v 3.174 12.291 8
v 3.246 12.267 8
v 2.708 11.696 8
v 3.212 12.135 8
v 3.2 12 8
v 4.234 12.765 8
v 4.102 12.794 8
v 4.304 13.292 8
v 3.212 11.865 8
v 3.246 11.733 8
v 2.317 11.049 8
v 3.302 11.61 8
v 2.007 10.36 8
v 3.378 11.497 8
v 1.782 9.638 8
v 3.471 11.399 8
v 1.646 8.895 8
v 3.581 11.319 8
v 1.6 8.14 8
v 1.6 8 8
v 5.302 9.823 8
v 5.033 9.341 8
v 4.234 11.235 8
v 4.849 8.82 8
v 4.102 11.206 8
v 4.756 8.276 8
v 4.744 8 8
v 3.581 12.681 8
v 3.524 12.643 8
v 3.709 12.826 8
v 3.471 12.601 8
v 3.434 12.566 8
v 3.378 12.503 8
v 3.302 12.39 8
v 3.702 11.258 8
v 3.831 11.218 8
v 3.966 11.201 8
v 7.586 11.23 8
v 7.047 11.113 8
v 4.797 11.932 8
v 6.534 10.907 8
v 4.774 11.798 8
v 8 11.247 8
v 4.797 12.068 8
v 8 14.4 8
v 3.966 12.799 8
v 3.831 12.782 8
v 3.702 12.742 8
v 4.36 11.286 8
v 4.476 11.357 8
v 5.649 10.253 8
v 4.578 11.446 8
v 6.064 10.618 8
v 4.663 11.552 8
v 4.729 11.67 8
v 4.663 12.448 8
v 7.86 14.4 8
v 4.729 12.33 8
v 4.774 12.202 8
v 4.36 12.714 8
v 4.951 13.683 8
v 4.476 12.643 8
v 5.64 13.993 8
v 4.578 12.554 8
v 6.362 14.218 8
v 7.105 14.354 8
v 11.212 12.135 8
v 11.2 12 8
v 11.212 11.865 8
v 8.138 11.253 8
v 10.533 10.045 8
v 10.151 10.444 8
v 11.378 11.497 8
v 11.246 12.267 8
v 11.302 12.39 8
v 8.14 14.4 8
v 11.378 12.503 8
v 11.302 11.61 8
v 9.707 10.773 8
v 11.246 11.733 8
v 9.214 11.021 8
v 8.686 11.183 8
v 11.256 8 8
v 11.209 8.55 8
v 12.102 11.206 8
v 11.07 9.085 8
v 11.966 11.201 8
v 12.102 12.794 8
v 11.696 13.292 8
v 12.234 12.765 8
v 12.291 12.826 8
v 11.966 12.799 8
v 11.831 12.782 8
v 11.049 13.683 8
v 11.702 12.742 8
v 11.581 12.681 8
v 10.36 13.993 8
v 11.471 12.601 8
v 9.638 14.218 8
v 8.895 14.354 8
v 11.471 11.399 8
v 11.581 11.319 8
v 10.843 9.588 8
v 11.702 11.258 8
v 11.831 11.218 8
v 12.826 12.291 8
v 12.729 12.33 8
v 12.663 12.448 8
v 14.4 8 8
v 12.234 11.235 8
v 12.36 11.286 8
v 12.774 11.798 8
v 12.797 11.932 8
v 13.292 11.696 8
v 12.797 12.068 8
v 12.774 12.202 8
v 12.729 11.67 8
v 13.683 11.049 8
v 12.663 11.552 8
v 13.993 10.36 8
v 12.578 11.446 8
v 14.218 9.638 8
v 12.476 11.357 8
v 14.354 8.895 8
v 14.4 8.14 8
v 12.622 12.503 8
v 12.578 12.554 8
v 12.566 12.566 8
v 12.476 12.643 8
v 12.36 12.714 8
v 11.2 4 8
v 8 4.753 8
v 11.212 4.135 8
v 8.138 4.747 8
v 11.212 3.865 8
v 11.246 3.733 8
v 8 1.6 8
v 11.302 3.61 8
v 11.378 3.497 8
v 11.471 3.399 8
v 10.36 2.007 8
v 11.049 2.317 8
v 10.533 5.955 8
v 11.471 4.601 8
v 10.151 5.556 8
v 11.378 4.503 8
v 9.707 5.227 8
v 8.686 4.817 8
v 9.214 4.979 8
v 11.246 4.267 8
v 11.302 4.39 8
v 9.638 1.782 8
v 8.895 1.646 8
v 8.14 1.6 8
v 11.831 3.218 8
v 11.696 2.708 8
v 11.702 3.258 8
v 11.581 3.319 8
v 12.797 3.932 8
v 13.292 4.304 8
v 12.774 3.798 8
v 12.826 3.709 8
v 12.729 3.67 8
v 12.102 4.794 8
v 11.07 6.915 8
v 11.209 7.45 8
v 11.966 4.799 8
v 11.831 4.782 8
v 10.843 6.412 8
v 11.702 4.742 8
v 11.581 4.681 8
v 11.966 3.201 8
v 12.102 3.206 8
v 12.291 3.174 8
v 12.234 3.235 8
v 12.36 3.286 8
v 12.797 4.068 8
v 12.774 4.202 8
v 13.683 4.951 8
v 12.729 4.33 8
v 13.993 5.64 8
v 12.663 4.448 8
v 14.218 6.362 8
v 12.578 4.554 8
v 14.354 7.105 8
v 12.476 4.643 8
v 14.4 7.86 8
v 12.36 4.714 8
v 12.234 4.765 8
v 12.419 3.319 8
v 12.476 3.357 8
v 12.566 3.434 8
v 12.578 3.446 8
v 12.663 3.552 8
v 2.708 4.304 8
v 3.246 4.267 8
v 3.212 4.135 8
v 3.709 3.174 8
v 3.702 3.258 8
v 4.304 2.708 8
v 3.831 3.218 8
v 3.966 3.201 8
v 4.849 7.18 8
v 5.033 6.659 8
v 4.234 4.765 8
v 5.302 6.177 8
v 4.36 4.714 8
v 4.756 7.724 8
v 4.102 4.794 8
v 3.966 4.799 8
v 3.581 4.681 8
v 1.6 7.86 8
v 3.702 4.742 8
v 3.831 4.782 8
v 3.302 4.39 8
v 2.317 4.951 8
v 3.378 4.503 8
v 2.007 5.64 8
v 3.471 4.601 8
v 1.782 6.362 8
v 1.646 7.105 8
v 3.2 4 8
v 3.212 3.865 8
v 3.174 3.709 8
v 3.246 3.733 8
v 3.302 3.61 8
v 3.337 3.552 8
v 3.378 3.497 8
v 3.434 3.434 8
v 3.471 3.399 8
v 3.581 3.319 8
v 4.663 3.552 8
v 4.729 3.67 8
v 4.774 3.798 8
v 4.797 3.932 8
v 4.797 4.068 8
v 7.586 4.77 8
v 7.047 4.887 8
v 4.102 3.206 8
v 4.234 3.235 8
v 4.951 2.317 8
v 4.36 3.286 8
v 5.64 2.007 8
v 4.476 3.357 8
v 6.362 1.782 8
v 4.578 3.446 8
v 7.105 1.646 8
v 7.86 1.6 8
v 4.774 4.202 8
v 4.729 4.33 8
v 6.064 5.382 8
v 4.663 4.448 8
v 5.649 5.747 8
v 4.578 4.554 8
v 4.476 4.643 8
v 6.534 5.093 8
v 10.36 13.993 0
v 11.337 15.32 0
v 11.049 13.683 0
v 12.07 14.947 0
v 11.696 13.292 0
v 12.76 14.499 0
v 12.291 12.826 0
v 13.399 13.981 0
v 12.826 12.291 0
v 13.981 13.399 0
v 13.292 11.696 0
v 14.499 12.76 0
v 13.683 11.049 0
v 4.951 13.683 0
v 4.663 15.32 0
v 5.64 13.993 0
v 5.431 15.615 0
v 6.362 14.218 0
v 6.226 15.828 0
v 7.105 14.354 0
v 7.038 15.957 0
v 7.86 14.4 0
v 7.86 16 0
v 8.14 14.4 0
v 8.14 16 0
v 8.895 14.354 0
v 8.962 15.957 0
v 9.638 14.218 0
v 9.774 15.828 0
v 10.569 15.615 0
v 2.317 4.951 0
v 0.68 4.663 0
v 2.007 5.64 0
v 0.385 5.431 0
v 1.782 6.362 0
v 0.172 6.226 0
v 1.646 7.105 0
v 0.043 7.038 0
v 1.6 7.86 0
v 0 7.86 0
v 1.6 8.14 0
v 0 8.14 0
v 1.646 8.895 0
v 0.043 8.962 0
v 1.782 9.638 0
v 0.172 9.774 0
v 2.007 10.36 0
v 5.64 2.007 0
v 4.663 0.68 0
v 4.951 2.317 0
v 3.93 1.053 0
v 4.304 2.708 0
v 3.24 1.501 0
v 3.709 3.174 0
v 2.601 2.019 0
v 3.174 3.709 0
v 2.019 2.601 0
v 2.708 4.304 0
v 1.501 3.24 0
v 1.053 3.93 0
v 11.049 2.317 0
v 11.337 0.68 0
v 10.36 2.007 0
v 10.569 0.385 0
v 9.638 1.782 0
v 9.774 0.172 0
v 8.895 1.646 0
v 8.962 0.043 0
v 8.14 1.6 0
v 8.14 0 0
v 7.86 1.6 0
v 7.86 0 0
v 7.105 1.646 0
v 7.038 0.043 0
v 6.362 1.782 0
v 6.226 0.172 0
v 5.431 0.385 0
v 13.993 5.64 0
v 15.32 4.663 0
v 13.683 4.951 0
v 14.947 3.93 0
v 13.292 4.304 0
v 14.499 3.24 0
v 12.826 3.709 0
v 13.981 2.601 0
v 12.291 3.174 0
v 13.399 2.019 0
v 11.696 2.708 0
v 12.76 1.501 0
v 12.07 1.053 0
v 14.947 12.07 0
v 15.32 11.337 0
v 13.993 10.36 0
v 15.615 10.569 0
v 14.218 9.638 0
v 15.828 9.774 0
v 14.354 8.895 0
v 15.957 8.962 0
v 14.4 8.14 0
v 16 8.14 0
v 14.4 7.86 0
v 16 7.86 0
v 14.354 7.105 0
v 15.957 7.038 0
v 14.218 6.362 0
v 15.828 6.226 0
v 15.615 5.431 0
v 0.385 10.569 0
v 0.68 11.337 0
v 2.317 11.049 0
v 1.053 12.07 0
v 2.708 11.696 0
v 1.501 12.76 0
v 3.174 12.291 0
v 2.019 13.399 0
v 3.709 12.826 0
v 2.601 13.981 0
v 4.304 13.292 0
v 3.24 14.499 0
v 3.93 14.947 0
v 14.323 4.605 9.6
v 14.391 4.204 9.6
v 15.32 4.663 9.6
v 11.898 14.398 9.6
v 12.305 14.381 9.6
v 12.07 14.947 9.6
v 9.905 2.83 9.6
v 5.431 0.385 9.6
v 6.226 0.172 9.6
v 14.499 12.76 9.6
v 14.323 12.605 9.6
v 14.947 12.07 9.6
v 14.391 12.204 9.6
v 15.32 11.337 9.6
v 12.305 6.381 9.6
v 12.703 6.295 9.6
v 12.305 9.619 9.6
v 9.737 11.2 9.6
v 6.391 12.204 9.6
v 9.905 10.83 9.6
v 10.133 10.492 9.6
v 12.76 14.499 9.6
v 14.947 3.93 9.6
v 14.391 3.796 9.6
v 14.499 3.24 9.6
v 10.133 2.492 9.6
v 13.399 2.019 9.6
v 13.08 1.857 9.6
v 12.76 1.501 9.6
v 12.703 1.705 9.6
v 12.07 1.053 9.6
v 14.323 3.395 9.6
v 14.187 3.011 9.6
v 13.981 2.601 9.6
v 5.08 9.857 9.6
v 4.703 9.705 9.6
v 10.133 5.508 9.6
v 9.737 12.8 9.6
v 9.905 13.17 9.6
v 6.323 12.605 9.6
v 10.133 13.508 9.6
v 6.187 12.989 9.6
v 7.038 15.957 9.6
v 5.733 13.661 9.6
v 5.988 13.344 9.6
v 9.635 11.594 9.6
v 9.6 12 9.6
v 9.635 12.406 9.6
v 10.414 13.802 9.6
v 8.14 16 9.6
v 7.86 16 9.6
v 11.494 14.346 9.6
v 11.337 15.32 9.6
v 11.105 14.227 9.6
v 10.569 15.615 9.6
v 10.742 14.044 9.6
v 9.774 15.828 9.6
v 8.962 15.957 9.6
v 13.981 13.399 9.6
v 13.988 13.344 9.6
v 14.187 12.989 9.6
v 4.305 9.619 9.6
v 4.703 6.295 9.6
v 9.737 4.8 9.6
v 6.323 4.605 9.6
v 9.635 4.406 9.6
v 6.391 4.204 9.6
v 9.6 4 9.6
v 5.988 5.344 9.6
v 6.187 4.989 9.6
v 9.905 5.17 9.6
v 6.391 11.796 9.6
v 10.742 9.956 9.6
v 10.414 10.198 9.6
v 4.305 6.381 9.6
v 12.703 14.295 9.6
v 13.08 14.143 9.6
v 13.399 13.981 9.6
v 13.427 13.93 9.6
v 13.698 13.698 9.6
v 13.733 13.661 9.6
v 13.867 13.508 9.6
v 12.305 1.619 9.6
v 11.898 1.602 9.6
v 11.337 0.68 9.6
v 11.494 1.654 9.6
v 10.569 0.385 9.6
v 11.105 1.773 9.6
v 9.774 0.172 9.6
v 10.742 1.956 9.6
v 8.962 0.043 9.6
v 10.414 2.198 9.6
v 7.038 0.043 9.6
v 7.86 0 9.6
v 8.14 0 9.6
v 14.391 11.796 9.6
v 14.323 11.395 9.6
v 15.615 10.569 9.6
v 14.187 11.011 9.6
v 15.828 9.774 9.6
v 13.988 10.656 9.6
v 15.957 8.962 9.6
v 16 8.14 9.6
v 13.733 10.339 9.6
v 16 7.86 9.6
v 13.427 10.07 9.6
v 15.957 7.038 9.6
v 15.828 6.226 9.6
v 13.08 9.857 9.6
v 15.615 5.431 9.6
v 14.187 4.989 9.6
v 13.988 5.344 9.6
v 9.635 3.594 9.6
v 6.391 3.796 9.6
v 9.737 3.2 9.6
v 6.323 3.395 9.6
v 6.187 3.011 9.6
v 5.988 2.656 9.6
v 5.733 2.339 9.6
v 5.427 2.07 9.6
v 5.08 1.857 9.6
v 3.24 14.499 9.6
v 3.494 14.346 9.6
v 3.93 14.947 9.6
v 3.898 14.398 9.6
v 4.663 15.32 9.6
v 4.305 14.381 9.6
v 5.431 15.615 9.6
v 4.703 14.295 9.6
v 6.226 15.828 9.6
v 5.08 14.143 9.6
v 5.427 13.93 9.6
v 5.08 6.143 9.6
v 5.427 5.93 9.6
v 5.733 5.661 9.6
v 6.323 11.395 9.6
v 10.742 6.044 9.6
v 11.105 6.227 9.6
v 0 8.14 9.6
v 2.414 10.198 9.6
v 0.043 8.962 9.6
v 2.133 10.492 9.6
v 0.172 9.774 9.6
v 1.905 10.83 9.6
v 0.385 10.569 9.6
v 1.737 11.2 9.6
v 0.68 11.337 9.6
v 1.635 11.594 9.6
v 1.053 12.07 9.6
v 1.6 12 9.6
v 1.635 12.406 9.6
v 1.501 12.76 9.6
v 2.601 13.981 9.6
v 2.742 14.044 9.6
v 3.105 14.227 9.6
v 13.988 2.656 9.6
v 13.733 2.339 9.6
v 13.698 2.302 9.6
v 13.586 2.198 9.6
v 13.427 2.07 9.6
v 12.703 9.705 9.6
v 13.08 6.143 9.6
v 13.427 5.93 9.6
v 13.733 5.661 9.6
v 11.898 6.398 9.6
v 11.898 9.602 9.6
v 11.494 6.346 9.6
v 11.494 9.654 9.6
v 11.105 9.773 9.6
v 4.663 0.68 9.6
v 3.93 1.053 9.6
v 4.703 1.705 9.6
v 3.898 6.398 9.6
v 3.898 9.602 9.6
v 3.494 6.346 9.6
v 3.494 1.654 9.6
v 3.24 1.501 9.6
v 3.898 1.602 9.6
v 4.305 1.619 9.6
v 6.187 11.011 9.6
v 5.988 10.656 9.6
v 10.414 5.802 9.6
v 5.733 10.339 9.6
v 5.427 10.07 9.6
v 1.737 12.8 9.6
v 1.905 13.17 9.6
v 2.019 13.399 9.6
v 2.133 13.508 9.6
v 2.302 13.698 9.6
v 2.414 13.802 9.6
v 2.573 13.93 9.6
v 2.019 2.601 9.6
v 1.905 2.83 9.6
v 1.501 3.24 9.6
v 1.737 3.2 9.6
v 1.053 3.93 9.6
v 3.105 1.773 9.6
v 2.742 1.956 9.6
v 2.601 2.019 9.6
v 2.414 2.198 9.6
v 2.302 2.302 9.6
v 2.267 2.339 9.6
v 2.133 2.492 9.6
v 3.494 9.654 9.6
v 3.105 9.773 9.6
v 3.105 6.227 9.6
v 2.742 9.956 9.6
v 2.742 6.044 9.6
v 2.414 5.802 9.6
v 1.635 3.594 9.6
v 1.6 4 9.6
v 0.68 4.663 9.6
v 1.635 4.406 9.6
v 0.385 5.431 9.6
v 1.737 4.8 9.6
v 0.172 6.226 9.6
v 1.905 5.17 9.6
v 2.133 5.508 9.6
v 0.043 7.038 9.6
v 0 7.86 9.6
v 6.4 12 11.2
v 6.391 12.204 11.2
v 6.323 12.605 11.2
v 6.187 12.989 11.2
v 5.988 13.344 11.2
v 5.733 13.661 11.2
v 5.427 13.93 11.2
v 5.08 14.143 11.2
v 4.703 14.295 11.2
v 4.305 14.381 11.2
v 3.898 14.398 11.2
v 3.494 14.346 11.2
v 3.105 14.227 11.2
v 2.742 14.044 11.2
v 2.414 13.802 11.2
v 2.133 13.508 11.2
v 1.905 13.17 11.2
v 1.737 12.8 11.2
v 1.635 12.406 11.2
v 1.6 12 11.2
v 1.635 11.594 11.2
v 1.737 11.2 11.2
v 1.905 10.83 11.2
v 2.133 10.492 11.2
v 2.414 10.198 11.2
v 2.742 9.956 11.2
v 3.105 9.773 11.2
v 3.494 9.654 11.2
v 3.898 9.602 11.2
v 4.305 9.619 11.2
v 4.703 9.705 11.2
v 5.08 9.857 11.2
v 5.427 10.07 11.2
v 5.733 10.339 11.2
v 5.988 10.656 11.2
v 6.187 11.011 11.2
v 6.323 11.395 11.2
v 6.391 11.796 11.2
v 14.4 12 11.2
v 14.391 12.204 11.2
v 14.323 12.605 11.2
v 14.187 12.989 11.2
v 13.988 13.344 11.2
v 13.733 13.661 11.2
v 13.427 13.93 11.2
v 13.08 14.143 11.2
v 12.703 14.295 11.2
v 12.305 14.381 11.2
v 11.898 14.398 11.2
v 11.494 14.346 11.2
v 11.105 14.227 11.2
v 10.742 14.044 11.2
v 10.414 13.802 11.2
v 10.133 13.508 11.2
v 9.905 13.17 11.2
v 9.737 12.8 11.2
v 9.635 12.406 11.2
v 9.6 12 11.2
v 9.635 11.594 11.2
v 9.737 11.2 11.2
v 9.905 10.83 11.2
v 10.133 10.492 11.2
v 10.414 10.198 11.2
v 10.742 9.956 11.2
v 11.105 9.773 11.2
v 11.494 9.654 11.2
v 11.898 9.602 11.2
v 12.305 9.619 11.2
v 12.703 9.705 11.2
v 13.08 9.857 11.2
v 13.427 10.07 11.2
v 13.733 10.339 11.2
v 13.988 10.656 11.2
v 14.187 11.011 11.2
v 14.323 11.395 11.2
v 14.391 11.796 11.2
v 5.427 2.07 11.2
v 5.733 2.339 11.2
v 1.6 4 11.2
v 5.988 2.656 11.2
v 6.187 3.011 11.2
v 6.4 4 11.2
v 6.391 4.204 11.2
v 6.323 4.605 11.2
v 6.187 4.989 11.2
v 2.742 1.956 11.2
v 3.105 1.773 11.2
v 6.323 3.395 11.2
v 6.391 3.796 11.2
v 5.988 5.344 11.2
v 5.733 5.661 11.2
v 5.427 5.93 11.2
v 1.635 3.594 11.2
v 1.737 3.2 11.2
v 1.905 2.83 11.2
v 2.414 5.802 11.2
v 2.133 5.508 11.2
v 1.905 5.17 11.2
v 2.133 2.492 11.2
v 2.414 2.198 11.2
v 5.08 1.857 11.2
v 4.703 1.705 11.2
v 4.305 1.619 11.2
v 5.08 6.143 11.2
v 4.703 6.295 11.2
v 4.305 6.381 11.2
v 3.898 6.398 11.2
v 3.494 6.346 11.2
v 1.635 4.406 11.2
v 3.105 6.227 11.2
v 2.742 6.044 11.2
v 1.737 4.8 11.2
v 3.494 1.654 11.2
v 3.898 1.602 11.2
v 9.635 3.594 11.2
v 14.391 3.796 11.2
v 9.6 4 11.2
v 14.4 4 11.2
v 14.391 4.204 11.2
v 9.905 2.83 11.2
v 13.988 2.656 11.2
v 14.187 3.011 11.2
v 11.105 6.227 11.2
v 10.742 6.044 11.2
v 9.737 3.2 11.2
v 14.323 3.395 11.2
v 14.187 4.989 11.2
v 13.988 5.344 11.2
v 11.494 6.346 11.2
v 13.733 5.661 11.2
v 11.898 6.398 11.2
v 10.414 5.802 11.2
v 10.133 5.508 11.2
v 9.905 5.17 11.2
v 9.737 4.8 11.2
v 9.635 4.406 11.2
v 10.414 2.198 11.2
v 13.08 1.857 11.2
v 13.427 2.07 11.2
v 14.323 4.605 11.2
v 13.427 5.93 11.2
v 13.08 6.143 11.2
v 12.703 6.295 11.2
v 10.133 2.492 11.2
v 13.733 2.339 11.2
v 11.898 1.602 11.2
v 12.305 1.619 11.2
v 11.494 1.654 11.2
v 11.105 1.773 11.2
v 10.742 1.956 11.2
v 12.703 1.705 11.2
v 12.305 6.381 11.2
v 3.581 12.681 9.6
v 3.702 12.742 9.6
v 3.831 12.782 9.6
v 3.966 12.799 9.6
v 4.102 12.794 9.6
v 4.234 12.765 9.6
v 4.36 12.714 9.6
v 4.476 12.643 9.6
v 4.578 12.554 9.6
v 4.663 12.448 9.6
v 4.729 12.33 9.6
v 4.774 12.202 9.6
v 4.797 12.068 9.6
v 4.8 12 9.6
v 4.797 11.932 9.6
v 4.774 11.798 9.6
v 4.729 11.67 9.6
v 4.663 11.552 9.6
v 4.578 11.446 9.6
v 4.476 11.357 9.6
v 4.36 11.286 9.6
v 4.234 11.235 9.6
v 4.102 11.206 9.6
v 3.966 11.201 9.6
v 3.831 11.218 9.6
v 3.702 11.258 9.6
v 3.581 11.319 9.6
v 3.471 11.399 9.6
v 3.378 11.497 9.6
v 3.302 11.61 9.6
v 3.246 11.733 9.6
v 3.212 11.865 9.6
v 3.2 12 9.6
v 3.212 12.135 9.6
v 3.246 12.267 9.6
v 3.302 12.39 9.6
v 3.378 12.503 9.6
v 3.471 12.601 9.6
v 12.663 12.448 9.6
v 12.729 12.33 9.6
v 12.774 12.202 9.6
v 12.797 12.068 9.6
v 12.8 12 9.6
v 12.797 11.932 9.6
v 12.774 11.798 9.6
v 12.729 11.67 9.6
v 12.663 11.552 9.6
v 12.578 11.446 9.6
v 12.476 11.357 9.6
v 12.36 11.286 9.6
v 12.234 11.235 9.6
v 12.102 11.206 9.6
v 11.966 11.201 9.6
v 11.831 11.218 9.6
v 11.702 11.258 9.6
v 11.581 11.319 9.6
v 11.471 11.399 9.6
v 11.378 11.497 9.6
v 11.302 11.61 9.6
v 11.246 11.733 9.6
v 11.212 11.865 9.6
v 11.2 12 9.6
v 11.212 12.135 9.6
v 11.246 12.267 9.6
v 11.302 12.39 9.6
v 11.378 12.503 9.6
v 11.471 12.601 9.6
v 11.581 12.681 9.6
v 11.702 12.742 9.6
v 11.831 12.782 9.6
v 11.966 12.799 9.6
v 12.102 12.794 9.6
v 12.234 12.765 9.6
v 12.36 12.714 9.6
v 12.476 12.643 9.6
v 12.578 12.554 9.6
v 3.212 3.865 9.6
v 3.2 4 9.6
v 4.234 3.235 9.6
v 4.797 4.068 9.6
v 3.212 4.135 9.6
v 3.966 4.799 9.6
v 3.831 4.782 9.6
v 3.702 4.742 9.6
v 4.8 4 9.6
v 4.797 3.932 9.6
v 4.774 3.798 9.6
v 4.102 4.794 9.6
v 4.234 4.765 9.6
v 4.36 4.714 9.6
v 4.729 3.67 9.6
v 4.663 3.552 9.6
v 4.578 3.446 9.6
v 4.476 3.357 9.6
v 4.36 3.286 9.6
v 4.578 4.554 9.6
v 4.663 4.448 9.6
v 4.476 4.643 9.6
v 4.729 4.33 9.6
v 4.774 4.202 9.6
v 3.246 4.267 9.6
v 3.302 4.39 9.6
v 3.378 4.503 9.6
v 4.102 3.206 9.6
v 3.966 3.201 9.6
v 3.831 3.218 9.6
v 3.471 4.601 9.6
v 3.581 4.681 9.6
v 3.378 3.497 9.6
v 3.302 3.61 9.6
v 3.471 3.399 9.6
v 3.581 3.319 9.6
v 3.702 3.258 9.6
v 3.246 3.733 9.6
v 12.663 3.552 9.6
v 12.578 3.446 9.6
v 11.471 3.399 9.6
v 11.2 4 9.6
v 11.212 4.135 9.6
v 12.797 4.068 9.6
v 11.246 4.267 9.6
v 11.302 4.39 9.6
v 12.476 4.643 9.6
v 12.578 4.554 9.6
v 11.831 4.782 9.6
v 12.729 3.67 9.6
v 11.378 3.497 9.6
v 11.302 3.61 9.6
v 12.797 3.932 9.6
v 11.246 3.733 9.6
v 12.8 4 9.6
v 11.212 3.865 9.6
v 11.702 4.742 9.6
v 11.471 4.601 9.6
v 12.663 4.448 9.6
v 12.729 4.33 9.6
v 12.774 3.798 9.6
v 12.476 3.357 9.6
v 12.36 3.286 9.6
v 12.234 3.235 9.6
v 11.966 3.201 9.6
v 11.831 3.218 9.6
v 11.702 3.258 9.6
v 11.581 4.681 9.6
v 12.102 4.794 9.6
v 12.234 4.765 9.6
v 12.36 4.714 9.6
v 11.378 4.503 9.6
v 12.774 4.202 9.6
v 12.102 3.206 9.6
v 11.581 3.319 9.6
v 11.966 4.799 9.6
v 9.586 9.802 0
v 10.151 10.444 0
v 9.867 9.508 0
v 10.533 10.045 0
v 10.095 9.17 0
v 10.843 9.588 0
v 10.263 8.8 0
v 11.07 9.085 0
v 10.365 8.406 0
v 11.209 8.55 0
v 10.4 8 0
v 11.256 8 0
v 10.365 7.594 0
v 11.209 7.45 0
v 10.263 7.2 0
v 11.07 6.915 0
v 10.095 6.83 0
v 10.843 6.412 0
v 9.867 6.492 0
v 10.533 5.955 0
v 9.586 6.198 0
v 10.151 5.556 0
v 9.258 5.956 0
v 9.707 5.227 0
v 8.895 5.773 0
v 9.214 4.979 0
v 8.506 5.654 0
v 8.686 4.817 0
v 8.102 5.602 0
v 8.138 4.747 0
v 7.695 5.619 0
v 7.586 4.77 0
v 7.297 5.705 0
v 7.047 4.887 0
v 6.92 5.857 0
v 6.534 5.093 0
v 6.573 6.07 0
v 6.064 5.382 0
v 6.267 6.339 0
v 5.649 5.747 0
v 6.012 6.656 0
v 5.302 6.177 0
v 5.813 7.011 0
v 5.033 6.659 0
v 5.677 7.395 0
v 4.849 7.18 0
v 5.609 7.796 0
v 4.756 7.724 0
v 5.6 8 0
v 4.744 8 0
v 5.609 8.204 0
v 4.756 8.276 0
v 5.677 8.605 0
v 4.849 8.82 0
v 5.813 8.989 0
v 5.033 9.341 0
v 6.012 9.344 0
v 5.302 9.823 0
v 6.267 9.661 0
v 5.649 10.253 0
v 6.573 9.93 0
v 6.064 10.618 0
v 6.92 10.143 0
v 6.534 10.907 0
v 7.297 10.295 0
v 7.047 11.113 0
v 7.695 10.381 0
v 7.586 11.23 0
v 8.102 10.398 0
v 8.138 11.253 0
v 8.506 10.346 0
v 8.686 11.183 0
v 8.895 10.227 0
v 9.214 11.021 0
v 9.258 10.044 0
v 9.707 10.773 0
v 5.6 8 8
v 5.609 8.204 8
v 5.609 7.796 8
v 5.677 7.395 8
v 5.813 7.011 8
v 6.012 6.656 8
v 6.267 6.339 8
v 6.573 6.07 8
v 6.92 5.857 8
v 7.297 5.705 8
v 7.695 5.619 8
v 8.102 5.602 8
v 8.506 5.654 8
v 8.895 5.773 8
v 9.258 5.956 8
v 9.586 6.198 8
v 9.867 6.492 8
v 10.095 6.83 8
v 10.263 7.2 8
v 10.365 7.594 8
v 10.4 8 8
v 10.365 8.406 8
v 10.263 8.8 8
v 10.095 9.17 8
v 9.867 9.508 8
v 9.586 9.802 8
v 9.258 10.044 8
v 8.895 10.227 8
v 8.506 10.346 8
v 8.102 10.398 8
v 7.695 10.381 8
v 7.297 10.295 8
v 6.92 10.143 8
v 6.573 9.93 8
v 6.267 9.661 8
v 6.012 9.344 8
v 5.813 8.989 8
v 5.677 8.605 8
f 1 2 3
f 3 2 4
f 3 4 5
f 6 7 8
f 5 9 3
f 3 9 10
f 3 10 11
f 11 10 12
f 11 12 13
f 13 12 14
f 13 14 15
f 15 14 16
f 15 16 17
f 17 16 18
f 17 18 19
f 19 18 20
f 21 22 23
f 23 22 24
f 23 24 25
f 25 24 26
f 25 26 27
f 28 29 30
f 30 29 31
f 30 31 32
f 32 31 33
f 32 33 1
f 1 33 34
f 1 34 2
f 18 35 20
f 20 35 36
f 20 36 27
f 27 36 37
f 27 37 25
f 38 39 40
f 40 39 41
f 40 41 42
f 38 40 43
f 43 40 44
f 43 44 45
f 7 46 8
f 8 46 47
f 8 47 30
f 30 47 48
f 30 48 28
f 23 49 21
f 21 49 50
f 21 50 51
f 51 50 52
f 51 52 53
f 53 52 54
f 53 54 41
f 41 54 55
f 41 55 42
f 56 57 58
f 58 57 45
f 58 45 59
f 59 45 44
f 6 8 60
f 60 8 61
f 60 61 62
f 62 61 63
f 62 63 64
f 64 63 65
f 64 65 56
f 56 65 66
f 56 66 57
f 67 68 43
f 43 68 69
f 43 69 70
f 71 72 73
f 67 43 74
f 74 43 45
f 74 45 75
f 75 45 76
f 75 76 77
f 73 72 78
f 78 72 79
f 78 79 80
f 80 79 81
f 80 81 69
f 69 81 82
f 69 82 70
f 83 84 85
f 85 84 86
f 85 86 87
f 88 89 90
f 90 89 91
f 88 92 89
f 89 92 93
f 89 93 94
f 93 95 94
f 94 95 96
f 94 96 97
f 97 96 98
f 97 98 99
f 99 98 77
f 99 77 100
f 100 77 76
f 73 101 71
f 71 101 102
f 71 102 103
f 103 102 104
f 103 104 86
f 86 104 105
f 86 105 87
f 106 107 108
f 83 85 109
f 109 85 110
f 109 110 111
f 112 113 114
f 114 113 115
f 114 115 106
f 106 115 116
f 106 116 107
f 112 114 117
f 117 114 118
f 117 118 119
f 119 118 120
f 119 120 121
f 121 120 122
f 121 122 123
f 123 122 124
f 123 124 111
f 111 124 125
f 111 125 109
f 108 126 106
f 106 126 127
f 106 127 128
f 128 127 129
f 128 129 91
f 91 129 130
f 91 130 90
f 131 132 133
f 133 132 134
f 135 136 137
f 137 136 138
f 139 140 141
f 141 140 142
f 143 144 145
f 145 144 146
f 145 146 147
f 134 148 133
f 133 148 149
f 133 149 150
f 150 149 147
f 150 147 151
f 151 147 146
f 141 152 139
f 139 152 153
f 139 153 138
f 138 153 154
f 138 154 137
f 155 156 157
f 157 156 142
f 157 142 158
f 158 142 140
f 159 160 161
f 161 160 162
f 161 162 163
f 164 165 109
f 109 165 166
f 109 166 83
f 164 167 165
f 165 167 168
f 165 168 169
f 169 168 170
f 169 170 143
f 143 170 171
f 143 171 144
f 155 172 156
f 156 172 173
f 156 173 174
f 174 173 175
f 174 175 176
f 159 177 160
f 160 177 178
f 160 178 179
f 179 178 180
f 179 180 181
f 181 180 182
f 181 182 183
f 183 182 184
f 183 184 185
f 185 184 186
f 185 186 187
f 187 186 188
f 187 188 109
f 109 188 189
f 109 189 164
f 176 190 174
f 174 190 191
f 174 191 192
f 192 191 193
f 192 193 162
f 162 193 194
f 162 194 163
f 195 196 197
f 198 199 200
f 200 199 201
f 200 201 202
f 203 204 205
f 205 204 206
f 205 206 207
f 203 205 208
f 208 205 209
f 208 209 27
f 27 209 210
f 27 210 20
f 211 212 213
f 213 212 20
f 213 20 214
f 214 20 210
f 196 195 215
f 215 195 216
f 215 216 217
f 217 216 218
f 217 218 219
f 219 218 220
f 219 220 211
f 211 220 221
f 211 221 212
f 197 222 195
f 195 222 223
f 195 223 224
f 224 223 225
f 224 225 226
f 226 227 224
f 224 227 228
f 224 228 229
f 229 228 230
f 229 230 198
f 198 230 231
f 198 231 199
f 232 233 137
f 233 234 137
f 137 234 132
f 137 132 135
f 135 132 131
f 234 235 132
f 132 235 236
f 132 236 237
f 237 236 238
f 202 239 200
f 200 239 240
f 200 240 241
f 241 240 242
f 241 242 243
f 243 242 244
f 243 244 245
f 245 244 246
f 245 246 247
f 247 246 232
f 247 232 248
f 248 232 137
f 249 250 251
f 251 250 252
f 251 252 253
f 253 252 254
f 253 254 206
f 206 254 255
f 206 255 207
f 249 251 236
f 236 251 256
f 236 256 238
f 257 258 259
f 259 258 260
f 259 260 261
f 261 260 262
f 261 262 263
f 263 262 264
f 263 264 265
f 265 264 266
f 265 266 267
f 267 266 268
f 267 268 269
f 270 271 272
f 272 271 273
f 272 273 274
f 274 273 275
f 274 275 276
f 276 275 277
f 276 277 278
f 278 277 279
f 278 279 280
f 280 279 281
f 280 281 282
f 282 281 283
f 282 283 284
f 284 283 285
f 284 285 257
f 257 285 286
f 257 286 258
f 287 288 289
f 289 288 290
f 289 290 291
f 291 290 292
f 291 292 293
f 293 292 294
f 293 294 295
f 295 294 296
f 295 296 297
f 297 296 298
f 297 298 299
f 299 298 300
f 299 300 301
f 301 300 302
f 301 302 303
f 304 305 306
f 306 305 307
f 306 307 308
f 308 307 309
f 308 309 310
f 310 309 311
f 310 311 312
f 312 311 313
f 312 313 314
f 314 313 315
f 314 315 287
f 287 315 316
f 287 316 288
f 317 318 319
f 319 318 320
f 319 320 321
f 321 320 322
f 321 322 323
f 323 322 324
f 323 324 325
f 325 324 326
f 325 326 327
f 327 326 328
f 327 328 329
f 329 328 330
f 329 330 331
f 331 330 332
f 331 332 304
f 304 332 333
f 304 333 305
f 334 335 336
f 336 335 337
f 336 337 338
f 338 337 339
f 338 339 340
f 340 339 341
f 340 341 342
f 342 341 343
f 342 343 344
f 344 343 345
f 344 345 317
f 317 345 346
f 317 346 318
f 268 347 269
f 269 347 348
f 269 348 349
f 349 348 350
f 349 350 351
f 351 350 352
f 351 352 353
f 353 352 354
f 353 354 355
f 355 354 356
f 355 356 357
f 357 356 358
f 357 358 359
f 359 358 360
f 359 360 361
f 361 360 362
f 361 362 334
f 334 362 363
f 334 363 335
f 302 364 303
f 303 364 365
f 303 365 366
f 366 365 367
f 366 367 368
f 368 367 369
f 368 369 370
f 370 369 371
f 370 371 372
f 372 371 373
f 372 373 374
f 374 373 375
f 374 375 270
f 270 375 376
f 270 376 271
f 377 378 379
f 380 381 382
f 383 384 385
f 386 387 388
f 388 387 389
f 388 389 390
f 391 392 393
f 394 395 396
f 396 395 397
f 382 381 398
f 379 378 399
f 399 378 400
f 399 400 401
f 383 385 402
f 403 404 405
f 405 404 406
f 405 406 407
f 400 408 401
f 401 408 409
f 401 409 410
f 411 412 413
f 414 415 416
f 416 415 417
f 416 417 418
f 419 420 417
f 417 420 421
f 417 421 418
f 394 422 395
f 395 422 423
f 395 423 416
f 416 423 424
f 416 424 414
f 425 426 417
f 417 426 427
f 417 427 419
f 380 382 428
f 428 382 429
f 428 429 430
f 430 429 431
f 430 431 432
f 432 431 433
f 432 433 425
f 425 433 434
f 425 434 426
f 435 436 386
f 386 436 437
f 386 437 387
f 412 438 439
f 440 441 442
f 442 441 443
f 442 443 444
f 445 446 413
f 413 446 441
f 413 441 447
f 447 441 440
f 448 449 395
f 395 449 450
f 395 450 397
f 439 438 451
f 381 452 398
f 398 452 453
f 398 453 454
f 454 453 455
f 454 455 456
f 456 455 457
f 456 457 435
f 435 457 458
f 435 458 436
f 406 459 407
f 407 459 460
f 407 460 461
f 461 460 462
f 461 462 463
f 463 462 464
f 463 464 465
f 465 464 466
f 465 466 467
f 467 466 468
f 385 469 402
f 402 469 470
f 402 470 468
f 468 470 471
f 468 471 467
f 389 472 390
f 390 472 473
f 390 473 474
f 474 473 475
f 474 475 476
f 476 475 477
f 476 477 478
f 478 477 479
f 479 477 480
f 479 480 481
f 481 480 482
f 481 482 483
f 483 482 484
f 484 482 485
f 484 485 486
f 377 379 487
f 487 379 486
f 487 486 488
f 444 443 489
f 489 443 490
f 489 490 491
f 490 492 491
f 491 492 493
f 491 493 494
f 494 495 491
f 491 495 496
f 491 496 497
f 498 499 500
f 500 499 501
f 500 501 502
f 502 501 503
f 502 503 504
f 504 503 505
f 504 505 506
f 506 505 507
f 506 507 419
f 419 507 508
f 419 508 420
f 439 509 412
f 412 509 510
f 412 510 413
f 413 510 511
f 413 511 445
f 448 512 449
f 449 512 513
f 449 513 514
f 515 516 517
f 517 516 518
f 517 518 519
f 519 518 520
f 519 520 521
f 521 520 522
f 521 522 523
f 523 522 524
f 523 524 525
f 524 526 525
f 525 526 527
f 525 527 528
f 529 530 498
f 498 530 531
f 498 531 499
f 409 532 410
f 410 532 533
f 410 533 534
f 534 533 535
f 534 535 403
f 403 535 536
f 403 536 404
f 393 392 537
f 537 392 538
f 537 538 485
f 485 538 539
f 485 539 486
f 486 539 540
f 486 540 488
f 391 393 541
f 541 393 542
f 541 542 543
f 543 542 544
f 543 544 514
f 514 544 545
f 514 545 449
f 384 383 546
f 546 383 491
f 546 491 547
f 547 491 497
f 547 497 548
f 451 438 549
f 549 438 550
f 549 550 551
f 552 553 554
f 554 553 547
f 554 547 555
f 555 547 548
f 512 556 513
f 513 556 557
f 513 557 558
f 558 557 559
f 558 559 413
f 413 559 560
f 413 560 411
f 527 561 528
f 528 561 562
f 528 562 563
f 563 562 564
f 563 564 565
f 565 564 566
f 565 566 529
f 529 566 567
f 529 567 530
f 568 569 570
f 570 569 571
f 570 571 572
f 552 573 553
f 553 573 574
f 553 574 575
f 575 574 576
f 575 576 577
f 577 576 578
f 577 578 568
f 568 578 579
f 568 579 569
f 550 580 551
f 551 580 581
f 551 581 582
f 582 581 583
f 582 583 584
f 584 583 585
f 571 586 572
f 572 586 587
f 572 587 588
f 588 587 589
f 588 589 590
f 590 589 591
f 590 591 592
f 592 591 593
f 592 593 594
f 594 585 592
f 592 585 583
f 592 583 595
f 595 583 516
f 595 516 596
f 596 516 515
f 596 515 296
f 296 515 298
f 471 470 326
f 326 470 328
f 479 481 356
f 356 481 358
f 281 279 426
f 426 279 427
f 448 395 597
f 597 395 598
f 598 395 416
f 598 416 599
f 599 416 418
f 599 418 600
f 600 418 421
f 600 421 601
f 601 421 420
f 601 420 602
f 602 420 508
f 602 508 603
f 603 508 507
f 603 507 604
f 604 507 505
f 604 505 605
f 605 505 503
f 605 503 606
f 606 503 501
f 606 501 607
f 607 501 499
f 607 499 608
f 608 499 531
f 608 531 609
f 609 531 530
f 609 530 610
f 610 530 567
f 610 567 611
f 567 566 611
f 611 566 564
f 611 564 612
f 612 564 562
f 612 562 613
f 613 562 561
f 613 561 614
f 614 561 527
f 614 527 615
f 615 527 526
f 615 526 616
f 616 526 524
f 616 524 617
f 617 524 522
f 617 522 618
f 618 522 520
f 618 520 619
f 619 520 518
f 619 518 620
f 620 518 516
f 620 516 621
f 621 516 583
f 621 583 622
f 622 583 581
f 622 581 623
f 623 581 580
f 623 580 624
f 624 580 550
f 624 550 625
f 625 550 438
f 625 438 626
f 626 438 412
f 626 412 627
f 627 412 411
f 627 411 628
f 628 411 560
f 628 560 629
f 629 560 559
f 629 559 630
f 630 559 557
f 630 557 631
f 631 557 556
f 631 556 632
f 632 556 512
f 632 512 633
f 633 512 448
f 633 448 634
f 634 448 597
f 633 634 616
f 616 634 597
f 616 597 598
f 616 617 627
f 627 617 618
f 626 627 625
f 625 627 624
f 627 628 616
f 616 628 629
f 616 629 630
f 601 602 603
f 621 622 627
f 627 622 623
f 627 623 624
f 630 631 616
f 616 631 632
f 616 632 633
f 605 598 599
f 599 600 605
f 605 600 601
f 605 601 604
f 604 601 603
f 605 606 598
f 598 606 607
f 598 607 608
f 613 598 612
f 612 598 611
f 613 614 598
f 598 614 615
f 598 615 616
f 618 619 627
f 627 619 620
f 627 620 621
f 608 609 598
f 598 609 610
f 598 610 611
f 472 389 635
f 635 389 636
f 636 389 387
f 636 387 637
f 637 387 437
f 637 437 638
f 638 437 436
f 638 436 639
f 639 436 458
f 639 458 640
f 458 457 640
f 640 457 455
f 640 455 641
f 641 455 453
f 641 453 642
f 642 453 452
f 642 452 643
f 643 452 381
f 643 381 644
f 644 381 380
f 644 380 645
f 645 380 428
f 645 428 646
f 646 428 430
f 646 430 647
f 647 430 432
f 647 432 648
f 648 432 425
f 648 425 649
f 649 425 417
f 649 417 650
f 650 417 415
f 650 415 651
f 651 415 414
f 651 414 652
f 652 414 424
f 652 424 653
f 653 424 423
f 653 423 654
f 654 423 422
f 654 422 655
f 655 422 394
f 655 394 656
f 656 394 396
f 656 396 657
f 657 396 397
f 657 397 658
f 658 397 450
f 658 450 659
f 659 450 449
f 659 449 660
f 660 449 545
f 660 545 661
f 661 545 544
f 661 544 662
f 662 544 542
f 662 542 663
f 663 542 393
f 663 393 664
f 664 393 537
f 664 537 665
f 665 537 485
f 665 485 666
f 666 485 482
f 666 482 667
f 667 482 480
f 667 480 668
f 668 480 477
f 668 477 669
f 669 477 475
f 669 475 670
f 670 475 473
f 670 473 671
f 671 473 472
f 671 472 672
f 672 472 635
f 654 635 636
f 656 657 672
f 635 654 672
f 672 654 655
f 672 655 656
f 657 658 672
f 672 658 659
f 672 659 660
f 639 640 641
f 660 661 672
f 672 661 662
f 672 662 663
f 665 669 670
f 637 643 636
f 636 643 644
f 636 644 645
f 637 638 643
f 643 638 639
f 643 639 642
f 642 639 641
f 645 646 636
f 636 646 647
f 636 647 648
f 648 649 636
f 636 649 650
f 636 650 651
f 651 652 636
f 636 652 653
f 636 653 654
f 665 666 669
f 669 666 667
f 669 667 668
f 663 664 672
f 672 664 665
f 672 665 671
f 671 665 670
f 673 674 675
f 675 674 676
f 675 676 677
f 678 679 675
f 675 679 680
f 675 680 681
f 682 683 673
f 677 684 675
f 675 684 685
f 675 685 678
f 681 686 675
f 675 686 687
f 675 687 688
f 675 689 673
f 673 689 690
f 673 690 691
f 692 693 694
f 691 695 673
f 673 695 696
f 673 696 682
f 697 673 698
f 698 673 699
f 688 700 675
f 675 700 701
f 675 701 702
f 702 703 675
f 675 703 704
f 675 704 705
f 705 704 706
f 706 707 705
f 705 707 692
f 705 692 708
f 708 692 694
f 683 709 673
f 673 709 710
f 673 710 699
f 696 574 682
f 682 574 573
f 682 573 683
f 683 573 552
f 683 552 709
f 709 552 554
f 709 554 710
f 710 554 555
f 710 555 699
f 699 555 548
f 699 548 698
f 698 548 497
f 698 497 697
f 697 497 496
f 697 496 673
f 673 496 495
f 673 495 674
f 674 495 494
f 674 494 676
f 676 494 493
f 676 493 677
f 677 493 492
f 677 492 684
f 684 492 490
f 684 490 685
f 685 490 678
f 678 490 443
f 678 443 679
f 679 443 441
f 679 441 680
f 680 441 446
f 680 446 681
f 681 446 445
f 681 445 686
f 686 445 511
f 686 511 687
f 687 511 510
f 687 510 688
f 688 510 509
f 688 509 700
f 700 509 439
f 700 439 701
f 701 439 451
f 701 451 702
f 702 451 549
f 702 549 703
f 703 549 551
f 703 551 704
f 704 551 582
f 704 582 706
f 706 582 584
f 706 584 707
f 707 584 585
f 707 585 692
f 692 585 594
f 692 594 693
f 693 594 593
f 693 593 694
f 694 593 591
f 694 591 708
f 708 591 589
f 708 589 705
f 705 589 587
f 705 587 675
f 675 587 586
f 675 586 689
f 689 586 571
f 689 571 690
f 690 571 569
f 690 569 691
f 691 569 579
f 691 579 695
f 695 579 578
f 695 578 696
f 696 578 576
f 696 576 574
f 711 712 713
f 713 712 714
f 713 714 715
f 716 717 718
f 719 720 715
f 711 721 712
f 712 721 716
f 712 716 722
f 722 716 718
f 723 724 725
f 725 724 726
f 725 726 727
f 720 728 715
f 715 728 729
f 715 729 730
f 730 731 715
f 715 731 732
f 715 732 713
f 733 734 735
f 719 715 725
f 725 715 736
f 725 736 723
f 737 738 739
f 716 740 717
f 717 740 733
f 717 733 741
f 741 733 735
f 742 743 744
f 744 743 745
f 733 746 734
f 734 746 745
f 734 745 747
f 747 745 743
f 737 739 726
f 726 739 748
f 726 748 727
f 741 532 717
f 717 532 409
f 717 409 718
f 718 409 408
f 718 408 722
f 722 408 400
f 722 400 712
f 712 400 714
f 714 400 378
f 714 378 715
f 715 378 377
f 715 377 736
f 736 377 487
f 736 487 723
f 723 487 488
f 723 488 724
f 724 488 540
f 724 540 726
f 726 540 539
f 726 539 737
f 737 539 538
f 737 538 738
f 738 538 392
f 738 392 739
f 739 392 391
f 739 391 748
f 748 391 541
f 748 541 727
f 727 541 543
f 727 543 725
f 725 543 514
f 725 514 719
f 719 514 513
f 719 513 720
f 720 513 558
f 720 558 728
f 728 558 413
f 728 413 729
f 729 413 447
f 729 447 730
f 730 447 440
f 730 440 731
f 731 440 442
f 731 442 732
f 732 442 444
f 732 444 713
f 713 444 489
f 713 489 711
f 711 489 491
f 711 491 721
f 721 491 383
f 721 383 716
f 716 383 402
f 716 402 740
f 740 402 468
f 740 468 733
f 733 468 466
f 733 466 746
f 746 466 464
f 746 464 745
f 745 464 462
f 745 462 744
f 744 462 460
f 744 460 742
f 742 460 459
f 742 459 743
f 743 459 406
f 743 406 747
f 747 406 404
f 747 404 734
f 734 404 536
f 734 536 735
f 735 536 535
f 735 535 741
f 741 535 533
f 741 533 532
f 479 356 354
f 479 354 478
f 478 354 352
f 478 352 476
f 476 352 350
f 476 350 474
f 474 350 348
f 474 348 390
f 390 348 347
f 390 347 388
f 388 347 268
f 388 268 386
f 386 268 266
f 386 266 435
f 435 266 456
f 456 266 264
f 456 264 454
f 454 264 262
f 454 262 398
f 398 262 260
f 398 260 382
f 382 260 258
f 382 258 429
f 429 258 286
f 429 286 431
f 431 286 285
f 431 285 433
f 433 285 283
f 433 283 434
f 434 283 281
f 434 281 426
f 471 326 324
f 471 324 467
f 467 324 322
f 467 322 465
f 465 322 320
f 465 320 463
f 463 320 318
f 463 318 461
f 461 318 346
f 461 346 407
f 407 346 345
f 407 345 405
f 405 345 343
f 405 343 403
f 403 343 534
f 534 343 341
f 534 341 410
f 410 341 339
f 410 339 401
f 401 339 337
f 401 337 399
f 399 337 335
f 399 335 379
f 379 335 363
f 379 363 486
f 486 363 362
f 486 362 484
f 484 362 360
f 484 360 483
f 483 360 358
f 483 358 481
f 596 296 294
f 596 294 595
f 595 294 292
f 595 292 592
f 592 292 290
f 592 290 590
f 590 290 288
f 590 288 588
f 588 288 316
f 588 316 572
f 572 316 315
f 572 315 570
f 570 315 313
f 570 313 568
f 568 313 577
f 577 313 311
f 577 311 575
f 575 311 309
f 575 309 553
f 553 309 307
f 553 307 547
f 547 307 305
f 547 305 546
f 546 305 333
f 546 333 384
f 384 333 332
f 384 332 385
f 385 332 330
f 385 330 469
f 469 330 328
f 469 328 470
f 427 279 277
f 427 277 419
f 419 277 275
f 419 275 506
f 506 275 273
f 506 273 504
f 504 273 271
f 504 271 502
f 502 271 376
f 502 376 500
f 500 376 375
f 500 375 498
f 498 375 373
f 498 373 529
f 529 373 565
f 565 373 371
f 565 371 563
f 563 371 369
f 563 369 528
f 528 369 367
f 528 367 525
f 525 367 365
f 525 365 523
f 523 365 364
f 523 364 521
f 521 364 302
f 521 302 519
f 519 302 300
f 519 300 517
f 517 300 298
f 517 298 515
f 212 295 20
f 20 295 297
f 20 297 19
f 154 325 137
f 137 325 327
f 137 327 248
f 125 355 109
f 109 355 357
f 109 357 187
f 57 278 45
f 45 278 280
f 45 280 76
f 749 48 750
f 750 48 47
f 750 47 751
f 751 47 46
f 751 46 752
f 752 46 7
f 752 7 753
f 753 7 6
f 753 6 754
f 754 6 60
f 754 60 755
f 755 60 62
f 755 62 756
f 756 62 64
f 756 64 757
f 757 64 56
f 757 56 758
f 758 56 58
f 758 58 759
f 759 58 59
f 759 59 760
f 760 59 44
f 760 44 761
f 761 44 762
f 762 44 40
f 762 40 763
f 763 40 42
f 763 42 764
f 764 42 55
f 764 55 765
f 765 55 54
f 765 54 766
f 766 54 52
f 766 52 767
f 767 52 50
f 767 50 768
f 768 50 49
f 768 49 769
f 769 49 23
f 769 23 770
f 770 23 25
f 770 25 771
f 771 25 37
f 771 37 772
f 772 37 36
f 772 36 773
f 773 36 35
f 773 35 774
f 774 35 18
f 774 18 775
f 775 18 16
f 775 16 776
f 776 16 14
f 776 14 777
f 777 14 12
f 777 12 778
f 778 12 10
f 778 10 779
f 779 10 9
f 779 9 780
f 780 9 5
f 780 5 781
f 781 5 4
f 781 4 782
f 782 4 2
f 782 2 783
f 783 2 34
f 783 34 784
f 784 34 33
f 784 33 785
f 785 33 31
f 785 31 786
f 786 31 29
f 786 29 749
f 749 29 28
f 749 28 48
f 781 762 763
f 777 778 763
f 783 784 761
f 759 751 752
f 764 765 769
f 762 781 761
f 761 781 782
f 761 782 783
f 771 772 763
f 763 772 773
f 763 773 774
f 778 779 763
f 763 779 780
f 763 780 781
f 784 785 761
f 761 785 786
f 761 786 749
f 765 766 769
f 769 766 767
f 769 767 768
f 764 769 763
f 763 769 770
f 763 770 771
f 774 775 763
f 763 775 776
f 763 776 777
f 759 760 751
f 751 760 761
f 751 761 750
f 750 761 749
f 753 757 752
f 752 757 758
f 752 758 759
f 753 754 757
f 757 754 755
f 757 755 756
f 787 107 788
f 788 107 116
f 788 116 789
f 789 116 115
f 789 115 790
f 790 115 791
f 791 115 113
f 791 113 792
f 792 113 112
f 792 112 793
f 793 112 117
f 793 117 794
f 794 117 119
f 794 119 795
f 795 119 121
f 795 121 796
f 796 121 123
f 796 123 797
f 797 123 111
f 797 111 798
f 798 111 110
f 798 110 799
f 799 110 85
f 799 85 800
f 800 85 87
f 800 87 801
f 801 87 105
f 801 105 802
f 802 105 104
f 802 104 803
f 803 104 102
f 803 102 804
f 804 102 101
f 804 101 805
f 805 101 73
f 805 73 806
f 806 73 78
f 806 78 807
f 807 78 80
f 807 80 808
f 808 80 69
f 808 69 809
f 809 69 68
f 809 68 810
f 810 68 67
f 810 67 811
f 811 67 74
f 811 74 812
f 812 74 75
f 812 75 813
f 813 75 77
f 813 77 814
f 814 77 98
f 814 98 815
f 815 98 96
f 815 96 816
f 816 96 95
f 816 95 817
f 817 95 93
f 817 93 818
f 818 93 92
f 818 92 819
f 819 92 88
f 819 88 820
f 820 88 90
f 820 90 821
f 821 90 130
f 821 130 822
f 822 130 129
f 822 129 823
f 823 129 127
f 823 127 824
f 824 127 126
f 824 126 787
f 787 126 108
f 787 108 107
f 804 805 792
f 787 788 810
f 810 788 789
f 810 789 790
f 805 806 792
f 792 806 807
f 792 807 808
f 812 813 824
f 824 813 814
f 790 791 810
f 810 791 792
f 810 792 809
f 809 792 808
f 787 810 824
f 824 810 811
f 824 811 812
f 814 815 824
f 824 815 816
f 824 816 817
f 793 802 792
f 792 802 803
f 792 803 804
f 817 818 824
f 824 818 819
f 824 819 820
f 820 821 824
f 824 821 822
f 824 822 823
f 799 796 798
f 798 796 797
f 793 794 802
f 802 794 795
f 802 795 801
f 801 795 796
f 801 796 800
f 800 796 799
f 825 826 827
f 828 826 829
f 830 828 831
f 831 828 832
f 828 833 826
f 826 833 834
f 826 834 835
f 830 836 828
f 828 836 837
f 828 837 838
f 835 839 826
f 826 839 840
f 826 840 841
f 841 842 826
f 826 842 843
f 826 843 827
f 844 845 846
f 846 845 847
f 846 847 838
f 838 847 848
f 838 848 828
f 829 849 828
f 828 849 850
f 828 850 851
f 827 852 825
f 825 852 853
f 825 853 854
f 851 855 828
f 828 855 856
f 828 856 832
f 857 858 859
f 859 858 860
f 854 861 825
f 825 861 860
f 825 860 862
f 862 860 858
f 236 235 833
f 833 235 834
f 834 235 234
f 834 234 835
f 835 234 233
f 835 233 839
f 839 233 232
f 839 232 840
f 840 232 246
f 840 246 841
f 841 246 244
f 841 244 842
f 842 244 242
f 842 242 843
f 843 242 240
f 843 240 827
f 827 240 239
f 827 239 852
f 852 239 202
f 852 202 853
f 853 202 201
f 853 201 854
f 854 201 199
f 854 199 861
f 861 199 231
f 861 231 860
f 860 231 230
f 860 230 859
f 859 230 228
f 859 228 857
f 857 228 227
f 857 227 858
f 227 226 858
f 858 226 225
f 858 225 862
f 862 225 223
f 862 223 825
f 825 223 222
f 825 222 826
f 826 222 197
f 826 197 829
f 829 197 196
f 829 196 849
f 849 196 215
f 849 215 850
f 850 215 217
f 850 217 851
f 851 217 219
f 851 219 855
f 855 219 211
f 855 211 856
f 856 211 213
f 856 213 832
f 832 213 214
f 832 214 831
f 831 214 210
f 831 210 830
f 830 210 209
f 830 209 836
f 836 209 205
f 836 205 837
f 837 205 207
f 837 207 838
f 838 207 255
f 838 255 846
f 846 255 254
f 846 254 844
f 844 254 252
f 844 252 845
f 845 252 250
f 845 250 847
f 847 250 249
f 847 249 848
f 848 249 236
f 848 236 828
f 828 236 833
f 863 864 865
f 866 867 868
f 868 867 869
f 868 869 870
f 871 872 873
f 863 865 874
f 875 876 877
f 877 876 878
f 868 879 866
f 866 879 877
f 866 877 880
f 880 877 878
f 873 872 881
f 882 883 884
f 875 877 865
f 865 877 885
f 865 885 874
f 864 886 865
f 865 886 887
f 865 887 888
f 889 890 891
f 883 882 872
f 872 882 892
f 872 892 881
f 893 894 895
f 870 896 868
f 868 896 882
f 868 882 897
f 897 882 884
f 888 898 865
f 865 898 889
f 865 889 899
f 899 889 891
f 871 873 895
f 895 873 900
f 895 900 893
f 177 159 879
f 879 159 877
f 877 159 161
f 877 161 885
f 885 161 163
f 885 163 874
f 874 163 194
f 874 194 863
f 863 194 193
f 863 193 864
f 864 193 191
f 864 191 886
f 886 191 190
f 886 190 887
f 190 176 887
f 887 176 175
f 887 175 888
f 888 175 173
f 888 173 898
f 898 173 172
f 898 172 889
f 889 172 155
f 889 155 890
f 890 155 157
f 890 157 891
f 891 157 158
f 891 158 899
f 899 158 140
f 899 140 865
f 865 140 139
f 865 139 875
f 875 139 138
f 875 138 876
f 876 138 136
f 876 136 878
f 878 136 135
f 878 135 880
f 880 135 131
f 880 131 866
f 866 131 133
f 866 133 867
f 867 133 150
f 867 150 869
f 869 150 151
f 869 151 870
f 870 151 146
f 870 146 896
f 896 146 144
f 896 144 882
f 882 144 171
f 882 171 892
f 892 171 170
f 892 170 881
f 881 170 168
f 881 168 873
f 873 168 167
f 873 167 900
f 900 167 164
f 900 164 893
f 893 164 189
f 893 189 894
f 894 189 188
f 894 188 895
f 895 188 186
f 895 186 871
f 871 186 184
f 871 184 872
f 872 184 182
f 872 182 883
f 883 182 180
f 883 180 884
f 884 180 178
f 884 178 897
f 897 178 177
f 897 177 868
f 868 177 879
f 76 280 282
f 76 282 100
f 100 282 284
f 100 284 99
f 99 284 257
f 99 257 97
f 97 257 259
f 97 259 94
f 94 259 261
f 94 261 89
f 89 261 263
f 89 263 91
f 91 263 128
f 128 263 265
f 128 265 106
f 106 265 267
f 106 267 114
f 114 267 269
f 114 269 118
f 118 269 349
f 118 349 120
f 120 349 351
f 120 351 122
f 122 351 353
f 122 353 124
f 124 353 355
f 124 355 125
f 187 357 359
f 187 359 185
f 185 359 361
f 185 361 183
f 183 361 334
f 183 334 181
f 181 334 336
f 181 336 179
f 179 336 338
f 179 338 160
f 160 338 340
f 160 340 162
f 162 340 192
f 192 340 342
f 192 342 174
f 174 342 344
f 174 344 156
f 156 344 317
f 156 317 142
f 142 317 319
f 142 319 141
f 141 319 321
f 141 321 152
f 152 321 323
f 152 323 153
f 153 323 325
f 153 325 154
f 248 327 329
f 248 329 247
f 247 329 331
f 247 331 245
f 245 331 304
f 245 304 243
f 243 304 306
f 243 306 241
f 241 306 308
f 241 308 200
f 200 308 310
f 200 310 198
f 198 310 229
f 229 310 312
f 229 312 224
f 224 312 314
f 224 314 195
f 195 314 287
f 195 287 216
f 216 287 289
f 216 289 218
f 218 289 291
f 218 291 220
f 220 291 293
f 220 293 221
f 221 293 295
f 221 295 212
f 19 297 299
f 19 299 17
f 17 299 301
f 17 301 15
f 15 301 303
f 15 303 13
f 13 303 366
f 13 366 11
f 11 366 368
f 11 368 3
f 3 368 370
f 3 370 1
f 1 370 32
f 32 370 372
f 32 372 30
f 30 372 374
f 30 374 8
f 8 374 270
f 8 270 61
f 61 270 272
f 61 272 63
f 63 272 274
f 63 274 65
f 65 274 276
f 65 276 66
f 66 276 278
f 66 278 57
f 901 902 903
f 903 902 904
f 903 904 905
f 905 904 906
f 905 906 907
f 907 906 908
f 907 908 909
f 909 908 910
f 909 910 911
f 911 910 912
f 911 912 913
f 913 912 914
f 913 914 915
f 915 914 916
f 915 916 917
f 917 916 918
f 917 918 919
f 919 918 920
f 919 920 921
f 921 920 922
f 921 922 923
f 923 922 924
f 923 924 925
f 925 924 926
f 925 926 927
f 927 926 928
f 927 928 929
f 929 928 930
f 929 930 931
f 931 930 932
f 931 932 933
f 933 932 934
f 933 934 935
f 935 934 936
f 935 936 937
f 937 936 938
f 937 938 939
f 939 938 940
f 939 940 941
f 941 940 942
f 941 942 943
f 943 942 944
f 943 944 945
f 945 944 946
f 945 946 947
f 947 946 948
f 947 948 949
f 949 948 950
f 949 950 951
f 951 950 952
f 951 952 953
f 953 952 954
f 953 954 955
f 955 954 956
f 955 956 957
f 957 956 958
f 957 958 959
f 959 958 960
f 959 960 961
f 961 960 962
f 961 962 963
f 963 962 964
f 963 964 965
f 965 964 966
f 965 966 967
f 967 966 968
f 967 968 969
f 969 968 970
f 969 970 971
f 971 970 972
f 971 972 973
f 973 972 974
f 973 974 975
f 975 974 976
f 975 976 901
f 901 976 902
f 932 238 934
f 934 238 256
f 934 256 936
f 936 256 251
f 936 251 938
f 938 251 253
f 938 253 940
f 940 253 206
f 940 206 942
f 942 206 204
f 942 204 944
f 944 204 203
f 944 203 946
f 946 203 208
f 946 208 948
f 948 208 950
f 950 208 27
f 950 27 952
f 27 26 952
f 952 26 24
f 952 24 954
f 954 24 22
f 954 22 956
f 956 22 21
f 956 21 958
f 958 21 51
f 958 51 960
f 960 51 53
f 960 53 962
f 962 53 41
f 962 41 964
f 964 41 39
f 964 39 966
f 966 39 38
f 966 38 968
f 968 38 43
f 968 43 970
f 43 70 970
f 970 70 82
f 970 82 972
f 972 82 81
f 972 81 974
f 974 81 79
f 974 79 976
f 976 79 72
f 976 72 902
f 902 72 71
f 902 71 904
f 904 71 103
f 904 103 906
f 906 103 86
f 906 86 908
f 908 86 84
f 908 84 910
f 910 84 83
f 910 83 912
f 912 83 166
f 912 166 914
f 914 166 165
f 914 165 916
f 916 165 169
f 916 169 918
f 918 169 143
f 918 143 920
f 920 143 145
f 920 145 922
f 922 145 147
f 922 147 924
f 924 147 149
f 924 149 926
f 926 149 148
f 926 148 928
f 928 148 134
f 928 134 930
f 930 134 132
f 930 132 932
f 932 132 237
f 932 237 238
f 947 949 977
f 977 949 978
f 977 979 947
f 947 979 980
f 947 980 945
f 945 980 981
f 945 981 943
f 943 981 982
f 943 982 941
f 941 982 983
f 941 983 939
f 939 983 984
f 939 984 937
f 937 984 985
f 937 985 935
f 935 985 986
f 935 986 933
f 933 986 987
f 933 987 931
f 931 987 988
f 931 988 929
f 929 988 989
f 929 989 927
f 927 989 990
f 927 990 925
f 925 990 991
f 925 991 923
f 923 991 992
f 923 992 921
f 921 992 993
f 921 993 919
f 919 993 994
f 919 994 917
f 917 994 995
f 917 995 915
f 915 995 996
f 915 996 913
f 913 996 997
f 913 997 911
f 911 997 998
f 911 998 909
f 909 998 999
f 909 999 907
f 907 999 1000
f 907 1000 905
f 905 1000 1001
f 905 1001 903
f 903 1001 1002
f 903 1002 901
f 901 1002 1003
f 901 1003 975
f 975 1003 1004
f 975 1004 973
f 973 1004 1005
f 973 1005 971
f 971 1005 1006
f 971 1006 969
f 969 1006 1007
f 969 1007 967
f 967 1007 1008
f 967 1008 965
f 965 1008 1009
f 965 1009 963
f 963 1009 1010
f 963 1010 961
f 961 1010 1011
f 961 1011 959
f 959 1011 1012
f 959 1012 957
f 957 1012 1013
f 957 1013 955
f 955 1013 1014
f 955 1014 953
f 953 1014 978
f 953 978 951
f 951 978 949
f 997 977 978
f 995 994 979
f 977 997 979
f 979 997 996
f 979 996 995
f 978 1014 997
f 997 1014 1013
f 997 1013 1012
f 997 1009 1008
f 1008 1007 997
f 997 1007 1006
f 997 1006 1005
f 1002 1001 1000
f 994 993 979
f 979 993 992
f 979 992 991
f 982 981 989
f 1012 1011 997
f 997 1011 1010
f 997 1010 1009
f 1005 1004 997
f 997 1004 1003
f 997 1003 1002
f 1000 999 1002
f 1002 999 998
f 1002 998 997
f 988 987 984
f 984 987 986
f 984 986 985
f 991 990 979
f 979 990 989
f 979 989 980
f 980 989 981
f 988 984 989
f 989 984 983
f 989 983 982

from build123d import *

# Parameters (mm, degrees)
SKETCH1_W            = 16
SKETCH1_H            = 16
BOSS_EXTRUDE1_DEPTH  = 9.6
SKETCH2_R            = 2.4
BOSS_EXTRUDE2_DEPTH  = 1.6
LPATTERN1_COUNT      = 2
LPATTERN1_PITCH      = 8
LPATTERN1_COUNT_DIR2 = 2
LPATTERN1_PITCH_DIR2 = 8
FILLET1_R            = 7.86
SHELL1_T             = -1.6
SKETCH3_R            = 3.256
SKETCH3_R_2          = 2.4
BOSS_EXTRUDE3_DEPTH  = 8


with BuildPart() as part:
    # Sketch1 → Boss-Extrude1 (new body)
    with BuildSketch(Plane.XY):
        with Locations((8, 8)):
            Rectangle(SKETCH1_W, SKETCH1_H)
    extrude(amount=BOSS_EXTRUDE1_DEPTH)

    # Sketch2 → Boss-Extrude2 (add)
    with BuildSketch(Plane.XY.offset(9.6)):
        with Locations(Location((4, 12, 0), (0, 0, 180))):
            Circle(SKETCH2_R)
    boss_extrude2 = extrude(amount=BOSS_EXTRUDE2_DEPTH)

    # LPattern1: Boss-Extrude2 2 × 2
    with Locations(*[(i * LPATTERN1_PITCH, -j * LPATTERN1_PITCH_DIR2, 0) for i in range(LPATTERN1_COUNT) for j in range(LPATTERN1_COUNT_DIR2) if (i, j) != (0, 0)]):
        add(boss_extrude2)

    # Fillet1
    fillet1_edges = [part.edges().sort_by_distance(p)[0] for p in [
        (0, 16, 4.8),
        (16, 16, 4.8),
        (16, 0, 4.8),
        (0, 0, 4.8),
    ]]
    fillet(fillet1_edges, radius=FILLET1_R)

    # Shell1
    shell1_openings = [part.faces().sort_by_distance(p)[0] for p in [
        (8, 8, 0),
    ]]
    offset(amount=SHELL1_T, openings=shell1_openings, kind=Kind.INTERSECTION)

    # Sketch3 → Boss-Extrude3 (add)
    with BuildSketch(Plane(origin=(0, 0, 8), x_dir=(-1, 0, 0), z_dir=(0, 0, -1))):
        with Locations((-8, 7.999999999)):
            Circle(SKETCH3_R)
        with Locations((-8, 7.999999999)):
            Circle(SKETCH3_R_2, mode=Mode.SUBTRACT)
    extrude(amount=BOSS_EXTRUDE3_DEPTH)


solid = part.part
